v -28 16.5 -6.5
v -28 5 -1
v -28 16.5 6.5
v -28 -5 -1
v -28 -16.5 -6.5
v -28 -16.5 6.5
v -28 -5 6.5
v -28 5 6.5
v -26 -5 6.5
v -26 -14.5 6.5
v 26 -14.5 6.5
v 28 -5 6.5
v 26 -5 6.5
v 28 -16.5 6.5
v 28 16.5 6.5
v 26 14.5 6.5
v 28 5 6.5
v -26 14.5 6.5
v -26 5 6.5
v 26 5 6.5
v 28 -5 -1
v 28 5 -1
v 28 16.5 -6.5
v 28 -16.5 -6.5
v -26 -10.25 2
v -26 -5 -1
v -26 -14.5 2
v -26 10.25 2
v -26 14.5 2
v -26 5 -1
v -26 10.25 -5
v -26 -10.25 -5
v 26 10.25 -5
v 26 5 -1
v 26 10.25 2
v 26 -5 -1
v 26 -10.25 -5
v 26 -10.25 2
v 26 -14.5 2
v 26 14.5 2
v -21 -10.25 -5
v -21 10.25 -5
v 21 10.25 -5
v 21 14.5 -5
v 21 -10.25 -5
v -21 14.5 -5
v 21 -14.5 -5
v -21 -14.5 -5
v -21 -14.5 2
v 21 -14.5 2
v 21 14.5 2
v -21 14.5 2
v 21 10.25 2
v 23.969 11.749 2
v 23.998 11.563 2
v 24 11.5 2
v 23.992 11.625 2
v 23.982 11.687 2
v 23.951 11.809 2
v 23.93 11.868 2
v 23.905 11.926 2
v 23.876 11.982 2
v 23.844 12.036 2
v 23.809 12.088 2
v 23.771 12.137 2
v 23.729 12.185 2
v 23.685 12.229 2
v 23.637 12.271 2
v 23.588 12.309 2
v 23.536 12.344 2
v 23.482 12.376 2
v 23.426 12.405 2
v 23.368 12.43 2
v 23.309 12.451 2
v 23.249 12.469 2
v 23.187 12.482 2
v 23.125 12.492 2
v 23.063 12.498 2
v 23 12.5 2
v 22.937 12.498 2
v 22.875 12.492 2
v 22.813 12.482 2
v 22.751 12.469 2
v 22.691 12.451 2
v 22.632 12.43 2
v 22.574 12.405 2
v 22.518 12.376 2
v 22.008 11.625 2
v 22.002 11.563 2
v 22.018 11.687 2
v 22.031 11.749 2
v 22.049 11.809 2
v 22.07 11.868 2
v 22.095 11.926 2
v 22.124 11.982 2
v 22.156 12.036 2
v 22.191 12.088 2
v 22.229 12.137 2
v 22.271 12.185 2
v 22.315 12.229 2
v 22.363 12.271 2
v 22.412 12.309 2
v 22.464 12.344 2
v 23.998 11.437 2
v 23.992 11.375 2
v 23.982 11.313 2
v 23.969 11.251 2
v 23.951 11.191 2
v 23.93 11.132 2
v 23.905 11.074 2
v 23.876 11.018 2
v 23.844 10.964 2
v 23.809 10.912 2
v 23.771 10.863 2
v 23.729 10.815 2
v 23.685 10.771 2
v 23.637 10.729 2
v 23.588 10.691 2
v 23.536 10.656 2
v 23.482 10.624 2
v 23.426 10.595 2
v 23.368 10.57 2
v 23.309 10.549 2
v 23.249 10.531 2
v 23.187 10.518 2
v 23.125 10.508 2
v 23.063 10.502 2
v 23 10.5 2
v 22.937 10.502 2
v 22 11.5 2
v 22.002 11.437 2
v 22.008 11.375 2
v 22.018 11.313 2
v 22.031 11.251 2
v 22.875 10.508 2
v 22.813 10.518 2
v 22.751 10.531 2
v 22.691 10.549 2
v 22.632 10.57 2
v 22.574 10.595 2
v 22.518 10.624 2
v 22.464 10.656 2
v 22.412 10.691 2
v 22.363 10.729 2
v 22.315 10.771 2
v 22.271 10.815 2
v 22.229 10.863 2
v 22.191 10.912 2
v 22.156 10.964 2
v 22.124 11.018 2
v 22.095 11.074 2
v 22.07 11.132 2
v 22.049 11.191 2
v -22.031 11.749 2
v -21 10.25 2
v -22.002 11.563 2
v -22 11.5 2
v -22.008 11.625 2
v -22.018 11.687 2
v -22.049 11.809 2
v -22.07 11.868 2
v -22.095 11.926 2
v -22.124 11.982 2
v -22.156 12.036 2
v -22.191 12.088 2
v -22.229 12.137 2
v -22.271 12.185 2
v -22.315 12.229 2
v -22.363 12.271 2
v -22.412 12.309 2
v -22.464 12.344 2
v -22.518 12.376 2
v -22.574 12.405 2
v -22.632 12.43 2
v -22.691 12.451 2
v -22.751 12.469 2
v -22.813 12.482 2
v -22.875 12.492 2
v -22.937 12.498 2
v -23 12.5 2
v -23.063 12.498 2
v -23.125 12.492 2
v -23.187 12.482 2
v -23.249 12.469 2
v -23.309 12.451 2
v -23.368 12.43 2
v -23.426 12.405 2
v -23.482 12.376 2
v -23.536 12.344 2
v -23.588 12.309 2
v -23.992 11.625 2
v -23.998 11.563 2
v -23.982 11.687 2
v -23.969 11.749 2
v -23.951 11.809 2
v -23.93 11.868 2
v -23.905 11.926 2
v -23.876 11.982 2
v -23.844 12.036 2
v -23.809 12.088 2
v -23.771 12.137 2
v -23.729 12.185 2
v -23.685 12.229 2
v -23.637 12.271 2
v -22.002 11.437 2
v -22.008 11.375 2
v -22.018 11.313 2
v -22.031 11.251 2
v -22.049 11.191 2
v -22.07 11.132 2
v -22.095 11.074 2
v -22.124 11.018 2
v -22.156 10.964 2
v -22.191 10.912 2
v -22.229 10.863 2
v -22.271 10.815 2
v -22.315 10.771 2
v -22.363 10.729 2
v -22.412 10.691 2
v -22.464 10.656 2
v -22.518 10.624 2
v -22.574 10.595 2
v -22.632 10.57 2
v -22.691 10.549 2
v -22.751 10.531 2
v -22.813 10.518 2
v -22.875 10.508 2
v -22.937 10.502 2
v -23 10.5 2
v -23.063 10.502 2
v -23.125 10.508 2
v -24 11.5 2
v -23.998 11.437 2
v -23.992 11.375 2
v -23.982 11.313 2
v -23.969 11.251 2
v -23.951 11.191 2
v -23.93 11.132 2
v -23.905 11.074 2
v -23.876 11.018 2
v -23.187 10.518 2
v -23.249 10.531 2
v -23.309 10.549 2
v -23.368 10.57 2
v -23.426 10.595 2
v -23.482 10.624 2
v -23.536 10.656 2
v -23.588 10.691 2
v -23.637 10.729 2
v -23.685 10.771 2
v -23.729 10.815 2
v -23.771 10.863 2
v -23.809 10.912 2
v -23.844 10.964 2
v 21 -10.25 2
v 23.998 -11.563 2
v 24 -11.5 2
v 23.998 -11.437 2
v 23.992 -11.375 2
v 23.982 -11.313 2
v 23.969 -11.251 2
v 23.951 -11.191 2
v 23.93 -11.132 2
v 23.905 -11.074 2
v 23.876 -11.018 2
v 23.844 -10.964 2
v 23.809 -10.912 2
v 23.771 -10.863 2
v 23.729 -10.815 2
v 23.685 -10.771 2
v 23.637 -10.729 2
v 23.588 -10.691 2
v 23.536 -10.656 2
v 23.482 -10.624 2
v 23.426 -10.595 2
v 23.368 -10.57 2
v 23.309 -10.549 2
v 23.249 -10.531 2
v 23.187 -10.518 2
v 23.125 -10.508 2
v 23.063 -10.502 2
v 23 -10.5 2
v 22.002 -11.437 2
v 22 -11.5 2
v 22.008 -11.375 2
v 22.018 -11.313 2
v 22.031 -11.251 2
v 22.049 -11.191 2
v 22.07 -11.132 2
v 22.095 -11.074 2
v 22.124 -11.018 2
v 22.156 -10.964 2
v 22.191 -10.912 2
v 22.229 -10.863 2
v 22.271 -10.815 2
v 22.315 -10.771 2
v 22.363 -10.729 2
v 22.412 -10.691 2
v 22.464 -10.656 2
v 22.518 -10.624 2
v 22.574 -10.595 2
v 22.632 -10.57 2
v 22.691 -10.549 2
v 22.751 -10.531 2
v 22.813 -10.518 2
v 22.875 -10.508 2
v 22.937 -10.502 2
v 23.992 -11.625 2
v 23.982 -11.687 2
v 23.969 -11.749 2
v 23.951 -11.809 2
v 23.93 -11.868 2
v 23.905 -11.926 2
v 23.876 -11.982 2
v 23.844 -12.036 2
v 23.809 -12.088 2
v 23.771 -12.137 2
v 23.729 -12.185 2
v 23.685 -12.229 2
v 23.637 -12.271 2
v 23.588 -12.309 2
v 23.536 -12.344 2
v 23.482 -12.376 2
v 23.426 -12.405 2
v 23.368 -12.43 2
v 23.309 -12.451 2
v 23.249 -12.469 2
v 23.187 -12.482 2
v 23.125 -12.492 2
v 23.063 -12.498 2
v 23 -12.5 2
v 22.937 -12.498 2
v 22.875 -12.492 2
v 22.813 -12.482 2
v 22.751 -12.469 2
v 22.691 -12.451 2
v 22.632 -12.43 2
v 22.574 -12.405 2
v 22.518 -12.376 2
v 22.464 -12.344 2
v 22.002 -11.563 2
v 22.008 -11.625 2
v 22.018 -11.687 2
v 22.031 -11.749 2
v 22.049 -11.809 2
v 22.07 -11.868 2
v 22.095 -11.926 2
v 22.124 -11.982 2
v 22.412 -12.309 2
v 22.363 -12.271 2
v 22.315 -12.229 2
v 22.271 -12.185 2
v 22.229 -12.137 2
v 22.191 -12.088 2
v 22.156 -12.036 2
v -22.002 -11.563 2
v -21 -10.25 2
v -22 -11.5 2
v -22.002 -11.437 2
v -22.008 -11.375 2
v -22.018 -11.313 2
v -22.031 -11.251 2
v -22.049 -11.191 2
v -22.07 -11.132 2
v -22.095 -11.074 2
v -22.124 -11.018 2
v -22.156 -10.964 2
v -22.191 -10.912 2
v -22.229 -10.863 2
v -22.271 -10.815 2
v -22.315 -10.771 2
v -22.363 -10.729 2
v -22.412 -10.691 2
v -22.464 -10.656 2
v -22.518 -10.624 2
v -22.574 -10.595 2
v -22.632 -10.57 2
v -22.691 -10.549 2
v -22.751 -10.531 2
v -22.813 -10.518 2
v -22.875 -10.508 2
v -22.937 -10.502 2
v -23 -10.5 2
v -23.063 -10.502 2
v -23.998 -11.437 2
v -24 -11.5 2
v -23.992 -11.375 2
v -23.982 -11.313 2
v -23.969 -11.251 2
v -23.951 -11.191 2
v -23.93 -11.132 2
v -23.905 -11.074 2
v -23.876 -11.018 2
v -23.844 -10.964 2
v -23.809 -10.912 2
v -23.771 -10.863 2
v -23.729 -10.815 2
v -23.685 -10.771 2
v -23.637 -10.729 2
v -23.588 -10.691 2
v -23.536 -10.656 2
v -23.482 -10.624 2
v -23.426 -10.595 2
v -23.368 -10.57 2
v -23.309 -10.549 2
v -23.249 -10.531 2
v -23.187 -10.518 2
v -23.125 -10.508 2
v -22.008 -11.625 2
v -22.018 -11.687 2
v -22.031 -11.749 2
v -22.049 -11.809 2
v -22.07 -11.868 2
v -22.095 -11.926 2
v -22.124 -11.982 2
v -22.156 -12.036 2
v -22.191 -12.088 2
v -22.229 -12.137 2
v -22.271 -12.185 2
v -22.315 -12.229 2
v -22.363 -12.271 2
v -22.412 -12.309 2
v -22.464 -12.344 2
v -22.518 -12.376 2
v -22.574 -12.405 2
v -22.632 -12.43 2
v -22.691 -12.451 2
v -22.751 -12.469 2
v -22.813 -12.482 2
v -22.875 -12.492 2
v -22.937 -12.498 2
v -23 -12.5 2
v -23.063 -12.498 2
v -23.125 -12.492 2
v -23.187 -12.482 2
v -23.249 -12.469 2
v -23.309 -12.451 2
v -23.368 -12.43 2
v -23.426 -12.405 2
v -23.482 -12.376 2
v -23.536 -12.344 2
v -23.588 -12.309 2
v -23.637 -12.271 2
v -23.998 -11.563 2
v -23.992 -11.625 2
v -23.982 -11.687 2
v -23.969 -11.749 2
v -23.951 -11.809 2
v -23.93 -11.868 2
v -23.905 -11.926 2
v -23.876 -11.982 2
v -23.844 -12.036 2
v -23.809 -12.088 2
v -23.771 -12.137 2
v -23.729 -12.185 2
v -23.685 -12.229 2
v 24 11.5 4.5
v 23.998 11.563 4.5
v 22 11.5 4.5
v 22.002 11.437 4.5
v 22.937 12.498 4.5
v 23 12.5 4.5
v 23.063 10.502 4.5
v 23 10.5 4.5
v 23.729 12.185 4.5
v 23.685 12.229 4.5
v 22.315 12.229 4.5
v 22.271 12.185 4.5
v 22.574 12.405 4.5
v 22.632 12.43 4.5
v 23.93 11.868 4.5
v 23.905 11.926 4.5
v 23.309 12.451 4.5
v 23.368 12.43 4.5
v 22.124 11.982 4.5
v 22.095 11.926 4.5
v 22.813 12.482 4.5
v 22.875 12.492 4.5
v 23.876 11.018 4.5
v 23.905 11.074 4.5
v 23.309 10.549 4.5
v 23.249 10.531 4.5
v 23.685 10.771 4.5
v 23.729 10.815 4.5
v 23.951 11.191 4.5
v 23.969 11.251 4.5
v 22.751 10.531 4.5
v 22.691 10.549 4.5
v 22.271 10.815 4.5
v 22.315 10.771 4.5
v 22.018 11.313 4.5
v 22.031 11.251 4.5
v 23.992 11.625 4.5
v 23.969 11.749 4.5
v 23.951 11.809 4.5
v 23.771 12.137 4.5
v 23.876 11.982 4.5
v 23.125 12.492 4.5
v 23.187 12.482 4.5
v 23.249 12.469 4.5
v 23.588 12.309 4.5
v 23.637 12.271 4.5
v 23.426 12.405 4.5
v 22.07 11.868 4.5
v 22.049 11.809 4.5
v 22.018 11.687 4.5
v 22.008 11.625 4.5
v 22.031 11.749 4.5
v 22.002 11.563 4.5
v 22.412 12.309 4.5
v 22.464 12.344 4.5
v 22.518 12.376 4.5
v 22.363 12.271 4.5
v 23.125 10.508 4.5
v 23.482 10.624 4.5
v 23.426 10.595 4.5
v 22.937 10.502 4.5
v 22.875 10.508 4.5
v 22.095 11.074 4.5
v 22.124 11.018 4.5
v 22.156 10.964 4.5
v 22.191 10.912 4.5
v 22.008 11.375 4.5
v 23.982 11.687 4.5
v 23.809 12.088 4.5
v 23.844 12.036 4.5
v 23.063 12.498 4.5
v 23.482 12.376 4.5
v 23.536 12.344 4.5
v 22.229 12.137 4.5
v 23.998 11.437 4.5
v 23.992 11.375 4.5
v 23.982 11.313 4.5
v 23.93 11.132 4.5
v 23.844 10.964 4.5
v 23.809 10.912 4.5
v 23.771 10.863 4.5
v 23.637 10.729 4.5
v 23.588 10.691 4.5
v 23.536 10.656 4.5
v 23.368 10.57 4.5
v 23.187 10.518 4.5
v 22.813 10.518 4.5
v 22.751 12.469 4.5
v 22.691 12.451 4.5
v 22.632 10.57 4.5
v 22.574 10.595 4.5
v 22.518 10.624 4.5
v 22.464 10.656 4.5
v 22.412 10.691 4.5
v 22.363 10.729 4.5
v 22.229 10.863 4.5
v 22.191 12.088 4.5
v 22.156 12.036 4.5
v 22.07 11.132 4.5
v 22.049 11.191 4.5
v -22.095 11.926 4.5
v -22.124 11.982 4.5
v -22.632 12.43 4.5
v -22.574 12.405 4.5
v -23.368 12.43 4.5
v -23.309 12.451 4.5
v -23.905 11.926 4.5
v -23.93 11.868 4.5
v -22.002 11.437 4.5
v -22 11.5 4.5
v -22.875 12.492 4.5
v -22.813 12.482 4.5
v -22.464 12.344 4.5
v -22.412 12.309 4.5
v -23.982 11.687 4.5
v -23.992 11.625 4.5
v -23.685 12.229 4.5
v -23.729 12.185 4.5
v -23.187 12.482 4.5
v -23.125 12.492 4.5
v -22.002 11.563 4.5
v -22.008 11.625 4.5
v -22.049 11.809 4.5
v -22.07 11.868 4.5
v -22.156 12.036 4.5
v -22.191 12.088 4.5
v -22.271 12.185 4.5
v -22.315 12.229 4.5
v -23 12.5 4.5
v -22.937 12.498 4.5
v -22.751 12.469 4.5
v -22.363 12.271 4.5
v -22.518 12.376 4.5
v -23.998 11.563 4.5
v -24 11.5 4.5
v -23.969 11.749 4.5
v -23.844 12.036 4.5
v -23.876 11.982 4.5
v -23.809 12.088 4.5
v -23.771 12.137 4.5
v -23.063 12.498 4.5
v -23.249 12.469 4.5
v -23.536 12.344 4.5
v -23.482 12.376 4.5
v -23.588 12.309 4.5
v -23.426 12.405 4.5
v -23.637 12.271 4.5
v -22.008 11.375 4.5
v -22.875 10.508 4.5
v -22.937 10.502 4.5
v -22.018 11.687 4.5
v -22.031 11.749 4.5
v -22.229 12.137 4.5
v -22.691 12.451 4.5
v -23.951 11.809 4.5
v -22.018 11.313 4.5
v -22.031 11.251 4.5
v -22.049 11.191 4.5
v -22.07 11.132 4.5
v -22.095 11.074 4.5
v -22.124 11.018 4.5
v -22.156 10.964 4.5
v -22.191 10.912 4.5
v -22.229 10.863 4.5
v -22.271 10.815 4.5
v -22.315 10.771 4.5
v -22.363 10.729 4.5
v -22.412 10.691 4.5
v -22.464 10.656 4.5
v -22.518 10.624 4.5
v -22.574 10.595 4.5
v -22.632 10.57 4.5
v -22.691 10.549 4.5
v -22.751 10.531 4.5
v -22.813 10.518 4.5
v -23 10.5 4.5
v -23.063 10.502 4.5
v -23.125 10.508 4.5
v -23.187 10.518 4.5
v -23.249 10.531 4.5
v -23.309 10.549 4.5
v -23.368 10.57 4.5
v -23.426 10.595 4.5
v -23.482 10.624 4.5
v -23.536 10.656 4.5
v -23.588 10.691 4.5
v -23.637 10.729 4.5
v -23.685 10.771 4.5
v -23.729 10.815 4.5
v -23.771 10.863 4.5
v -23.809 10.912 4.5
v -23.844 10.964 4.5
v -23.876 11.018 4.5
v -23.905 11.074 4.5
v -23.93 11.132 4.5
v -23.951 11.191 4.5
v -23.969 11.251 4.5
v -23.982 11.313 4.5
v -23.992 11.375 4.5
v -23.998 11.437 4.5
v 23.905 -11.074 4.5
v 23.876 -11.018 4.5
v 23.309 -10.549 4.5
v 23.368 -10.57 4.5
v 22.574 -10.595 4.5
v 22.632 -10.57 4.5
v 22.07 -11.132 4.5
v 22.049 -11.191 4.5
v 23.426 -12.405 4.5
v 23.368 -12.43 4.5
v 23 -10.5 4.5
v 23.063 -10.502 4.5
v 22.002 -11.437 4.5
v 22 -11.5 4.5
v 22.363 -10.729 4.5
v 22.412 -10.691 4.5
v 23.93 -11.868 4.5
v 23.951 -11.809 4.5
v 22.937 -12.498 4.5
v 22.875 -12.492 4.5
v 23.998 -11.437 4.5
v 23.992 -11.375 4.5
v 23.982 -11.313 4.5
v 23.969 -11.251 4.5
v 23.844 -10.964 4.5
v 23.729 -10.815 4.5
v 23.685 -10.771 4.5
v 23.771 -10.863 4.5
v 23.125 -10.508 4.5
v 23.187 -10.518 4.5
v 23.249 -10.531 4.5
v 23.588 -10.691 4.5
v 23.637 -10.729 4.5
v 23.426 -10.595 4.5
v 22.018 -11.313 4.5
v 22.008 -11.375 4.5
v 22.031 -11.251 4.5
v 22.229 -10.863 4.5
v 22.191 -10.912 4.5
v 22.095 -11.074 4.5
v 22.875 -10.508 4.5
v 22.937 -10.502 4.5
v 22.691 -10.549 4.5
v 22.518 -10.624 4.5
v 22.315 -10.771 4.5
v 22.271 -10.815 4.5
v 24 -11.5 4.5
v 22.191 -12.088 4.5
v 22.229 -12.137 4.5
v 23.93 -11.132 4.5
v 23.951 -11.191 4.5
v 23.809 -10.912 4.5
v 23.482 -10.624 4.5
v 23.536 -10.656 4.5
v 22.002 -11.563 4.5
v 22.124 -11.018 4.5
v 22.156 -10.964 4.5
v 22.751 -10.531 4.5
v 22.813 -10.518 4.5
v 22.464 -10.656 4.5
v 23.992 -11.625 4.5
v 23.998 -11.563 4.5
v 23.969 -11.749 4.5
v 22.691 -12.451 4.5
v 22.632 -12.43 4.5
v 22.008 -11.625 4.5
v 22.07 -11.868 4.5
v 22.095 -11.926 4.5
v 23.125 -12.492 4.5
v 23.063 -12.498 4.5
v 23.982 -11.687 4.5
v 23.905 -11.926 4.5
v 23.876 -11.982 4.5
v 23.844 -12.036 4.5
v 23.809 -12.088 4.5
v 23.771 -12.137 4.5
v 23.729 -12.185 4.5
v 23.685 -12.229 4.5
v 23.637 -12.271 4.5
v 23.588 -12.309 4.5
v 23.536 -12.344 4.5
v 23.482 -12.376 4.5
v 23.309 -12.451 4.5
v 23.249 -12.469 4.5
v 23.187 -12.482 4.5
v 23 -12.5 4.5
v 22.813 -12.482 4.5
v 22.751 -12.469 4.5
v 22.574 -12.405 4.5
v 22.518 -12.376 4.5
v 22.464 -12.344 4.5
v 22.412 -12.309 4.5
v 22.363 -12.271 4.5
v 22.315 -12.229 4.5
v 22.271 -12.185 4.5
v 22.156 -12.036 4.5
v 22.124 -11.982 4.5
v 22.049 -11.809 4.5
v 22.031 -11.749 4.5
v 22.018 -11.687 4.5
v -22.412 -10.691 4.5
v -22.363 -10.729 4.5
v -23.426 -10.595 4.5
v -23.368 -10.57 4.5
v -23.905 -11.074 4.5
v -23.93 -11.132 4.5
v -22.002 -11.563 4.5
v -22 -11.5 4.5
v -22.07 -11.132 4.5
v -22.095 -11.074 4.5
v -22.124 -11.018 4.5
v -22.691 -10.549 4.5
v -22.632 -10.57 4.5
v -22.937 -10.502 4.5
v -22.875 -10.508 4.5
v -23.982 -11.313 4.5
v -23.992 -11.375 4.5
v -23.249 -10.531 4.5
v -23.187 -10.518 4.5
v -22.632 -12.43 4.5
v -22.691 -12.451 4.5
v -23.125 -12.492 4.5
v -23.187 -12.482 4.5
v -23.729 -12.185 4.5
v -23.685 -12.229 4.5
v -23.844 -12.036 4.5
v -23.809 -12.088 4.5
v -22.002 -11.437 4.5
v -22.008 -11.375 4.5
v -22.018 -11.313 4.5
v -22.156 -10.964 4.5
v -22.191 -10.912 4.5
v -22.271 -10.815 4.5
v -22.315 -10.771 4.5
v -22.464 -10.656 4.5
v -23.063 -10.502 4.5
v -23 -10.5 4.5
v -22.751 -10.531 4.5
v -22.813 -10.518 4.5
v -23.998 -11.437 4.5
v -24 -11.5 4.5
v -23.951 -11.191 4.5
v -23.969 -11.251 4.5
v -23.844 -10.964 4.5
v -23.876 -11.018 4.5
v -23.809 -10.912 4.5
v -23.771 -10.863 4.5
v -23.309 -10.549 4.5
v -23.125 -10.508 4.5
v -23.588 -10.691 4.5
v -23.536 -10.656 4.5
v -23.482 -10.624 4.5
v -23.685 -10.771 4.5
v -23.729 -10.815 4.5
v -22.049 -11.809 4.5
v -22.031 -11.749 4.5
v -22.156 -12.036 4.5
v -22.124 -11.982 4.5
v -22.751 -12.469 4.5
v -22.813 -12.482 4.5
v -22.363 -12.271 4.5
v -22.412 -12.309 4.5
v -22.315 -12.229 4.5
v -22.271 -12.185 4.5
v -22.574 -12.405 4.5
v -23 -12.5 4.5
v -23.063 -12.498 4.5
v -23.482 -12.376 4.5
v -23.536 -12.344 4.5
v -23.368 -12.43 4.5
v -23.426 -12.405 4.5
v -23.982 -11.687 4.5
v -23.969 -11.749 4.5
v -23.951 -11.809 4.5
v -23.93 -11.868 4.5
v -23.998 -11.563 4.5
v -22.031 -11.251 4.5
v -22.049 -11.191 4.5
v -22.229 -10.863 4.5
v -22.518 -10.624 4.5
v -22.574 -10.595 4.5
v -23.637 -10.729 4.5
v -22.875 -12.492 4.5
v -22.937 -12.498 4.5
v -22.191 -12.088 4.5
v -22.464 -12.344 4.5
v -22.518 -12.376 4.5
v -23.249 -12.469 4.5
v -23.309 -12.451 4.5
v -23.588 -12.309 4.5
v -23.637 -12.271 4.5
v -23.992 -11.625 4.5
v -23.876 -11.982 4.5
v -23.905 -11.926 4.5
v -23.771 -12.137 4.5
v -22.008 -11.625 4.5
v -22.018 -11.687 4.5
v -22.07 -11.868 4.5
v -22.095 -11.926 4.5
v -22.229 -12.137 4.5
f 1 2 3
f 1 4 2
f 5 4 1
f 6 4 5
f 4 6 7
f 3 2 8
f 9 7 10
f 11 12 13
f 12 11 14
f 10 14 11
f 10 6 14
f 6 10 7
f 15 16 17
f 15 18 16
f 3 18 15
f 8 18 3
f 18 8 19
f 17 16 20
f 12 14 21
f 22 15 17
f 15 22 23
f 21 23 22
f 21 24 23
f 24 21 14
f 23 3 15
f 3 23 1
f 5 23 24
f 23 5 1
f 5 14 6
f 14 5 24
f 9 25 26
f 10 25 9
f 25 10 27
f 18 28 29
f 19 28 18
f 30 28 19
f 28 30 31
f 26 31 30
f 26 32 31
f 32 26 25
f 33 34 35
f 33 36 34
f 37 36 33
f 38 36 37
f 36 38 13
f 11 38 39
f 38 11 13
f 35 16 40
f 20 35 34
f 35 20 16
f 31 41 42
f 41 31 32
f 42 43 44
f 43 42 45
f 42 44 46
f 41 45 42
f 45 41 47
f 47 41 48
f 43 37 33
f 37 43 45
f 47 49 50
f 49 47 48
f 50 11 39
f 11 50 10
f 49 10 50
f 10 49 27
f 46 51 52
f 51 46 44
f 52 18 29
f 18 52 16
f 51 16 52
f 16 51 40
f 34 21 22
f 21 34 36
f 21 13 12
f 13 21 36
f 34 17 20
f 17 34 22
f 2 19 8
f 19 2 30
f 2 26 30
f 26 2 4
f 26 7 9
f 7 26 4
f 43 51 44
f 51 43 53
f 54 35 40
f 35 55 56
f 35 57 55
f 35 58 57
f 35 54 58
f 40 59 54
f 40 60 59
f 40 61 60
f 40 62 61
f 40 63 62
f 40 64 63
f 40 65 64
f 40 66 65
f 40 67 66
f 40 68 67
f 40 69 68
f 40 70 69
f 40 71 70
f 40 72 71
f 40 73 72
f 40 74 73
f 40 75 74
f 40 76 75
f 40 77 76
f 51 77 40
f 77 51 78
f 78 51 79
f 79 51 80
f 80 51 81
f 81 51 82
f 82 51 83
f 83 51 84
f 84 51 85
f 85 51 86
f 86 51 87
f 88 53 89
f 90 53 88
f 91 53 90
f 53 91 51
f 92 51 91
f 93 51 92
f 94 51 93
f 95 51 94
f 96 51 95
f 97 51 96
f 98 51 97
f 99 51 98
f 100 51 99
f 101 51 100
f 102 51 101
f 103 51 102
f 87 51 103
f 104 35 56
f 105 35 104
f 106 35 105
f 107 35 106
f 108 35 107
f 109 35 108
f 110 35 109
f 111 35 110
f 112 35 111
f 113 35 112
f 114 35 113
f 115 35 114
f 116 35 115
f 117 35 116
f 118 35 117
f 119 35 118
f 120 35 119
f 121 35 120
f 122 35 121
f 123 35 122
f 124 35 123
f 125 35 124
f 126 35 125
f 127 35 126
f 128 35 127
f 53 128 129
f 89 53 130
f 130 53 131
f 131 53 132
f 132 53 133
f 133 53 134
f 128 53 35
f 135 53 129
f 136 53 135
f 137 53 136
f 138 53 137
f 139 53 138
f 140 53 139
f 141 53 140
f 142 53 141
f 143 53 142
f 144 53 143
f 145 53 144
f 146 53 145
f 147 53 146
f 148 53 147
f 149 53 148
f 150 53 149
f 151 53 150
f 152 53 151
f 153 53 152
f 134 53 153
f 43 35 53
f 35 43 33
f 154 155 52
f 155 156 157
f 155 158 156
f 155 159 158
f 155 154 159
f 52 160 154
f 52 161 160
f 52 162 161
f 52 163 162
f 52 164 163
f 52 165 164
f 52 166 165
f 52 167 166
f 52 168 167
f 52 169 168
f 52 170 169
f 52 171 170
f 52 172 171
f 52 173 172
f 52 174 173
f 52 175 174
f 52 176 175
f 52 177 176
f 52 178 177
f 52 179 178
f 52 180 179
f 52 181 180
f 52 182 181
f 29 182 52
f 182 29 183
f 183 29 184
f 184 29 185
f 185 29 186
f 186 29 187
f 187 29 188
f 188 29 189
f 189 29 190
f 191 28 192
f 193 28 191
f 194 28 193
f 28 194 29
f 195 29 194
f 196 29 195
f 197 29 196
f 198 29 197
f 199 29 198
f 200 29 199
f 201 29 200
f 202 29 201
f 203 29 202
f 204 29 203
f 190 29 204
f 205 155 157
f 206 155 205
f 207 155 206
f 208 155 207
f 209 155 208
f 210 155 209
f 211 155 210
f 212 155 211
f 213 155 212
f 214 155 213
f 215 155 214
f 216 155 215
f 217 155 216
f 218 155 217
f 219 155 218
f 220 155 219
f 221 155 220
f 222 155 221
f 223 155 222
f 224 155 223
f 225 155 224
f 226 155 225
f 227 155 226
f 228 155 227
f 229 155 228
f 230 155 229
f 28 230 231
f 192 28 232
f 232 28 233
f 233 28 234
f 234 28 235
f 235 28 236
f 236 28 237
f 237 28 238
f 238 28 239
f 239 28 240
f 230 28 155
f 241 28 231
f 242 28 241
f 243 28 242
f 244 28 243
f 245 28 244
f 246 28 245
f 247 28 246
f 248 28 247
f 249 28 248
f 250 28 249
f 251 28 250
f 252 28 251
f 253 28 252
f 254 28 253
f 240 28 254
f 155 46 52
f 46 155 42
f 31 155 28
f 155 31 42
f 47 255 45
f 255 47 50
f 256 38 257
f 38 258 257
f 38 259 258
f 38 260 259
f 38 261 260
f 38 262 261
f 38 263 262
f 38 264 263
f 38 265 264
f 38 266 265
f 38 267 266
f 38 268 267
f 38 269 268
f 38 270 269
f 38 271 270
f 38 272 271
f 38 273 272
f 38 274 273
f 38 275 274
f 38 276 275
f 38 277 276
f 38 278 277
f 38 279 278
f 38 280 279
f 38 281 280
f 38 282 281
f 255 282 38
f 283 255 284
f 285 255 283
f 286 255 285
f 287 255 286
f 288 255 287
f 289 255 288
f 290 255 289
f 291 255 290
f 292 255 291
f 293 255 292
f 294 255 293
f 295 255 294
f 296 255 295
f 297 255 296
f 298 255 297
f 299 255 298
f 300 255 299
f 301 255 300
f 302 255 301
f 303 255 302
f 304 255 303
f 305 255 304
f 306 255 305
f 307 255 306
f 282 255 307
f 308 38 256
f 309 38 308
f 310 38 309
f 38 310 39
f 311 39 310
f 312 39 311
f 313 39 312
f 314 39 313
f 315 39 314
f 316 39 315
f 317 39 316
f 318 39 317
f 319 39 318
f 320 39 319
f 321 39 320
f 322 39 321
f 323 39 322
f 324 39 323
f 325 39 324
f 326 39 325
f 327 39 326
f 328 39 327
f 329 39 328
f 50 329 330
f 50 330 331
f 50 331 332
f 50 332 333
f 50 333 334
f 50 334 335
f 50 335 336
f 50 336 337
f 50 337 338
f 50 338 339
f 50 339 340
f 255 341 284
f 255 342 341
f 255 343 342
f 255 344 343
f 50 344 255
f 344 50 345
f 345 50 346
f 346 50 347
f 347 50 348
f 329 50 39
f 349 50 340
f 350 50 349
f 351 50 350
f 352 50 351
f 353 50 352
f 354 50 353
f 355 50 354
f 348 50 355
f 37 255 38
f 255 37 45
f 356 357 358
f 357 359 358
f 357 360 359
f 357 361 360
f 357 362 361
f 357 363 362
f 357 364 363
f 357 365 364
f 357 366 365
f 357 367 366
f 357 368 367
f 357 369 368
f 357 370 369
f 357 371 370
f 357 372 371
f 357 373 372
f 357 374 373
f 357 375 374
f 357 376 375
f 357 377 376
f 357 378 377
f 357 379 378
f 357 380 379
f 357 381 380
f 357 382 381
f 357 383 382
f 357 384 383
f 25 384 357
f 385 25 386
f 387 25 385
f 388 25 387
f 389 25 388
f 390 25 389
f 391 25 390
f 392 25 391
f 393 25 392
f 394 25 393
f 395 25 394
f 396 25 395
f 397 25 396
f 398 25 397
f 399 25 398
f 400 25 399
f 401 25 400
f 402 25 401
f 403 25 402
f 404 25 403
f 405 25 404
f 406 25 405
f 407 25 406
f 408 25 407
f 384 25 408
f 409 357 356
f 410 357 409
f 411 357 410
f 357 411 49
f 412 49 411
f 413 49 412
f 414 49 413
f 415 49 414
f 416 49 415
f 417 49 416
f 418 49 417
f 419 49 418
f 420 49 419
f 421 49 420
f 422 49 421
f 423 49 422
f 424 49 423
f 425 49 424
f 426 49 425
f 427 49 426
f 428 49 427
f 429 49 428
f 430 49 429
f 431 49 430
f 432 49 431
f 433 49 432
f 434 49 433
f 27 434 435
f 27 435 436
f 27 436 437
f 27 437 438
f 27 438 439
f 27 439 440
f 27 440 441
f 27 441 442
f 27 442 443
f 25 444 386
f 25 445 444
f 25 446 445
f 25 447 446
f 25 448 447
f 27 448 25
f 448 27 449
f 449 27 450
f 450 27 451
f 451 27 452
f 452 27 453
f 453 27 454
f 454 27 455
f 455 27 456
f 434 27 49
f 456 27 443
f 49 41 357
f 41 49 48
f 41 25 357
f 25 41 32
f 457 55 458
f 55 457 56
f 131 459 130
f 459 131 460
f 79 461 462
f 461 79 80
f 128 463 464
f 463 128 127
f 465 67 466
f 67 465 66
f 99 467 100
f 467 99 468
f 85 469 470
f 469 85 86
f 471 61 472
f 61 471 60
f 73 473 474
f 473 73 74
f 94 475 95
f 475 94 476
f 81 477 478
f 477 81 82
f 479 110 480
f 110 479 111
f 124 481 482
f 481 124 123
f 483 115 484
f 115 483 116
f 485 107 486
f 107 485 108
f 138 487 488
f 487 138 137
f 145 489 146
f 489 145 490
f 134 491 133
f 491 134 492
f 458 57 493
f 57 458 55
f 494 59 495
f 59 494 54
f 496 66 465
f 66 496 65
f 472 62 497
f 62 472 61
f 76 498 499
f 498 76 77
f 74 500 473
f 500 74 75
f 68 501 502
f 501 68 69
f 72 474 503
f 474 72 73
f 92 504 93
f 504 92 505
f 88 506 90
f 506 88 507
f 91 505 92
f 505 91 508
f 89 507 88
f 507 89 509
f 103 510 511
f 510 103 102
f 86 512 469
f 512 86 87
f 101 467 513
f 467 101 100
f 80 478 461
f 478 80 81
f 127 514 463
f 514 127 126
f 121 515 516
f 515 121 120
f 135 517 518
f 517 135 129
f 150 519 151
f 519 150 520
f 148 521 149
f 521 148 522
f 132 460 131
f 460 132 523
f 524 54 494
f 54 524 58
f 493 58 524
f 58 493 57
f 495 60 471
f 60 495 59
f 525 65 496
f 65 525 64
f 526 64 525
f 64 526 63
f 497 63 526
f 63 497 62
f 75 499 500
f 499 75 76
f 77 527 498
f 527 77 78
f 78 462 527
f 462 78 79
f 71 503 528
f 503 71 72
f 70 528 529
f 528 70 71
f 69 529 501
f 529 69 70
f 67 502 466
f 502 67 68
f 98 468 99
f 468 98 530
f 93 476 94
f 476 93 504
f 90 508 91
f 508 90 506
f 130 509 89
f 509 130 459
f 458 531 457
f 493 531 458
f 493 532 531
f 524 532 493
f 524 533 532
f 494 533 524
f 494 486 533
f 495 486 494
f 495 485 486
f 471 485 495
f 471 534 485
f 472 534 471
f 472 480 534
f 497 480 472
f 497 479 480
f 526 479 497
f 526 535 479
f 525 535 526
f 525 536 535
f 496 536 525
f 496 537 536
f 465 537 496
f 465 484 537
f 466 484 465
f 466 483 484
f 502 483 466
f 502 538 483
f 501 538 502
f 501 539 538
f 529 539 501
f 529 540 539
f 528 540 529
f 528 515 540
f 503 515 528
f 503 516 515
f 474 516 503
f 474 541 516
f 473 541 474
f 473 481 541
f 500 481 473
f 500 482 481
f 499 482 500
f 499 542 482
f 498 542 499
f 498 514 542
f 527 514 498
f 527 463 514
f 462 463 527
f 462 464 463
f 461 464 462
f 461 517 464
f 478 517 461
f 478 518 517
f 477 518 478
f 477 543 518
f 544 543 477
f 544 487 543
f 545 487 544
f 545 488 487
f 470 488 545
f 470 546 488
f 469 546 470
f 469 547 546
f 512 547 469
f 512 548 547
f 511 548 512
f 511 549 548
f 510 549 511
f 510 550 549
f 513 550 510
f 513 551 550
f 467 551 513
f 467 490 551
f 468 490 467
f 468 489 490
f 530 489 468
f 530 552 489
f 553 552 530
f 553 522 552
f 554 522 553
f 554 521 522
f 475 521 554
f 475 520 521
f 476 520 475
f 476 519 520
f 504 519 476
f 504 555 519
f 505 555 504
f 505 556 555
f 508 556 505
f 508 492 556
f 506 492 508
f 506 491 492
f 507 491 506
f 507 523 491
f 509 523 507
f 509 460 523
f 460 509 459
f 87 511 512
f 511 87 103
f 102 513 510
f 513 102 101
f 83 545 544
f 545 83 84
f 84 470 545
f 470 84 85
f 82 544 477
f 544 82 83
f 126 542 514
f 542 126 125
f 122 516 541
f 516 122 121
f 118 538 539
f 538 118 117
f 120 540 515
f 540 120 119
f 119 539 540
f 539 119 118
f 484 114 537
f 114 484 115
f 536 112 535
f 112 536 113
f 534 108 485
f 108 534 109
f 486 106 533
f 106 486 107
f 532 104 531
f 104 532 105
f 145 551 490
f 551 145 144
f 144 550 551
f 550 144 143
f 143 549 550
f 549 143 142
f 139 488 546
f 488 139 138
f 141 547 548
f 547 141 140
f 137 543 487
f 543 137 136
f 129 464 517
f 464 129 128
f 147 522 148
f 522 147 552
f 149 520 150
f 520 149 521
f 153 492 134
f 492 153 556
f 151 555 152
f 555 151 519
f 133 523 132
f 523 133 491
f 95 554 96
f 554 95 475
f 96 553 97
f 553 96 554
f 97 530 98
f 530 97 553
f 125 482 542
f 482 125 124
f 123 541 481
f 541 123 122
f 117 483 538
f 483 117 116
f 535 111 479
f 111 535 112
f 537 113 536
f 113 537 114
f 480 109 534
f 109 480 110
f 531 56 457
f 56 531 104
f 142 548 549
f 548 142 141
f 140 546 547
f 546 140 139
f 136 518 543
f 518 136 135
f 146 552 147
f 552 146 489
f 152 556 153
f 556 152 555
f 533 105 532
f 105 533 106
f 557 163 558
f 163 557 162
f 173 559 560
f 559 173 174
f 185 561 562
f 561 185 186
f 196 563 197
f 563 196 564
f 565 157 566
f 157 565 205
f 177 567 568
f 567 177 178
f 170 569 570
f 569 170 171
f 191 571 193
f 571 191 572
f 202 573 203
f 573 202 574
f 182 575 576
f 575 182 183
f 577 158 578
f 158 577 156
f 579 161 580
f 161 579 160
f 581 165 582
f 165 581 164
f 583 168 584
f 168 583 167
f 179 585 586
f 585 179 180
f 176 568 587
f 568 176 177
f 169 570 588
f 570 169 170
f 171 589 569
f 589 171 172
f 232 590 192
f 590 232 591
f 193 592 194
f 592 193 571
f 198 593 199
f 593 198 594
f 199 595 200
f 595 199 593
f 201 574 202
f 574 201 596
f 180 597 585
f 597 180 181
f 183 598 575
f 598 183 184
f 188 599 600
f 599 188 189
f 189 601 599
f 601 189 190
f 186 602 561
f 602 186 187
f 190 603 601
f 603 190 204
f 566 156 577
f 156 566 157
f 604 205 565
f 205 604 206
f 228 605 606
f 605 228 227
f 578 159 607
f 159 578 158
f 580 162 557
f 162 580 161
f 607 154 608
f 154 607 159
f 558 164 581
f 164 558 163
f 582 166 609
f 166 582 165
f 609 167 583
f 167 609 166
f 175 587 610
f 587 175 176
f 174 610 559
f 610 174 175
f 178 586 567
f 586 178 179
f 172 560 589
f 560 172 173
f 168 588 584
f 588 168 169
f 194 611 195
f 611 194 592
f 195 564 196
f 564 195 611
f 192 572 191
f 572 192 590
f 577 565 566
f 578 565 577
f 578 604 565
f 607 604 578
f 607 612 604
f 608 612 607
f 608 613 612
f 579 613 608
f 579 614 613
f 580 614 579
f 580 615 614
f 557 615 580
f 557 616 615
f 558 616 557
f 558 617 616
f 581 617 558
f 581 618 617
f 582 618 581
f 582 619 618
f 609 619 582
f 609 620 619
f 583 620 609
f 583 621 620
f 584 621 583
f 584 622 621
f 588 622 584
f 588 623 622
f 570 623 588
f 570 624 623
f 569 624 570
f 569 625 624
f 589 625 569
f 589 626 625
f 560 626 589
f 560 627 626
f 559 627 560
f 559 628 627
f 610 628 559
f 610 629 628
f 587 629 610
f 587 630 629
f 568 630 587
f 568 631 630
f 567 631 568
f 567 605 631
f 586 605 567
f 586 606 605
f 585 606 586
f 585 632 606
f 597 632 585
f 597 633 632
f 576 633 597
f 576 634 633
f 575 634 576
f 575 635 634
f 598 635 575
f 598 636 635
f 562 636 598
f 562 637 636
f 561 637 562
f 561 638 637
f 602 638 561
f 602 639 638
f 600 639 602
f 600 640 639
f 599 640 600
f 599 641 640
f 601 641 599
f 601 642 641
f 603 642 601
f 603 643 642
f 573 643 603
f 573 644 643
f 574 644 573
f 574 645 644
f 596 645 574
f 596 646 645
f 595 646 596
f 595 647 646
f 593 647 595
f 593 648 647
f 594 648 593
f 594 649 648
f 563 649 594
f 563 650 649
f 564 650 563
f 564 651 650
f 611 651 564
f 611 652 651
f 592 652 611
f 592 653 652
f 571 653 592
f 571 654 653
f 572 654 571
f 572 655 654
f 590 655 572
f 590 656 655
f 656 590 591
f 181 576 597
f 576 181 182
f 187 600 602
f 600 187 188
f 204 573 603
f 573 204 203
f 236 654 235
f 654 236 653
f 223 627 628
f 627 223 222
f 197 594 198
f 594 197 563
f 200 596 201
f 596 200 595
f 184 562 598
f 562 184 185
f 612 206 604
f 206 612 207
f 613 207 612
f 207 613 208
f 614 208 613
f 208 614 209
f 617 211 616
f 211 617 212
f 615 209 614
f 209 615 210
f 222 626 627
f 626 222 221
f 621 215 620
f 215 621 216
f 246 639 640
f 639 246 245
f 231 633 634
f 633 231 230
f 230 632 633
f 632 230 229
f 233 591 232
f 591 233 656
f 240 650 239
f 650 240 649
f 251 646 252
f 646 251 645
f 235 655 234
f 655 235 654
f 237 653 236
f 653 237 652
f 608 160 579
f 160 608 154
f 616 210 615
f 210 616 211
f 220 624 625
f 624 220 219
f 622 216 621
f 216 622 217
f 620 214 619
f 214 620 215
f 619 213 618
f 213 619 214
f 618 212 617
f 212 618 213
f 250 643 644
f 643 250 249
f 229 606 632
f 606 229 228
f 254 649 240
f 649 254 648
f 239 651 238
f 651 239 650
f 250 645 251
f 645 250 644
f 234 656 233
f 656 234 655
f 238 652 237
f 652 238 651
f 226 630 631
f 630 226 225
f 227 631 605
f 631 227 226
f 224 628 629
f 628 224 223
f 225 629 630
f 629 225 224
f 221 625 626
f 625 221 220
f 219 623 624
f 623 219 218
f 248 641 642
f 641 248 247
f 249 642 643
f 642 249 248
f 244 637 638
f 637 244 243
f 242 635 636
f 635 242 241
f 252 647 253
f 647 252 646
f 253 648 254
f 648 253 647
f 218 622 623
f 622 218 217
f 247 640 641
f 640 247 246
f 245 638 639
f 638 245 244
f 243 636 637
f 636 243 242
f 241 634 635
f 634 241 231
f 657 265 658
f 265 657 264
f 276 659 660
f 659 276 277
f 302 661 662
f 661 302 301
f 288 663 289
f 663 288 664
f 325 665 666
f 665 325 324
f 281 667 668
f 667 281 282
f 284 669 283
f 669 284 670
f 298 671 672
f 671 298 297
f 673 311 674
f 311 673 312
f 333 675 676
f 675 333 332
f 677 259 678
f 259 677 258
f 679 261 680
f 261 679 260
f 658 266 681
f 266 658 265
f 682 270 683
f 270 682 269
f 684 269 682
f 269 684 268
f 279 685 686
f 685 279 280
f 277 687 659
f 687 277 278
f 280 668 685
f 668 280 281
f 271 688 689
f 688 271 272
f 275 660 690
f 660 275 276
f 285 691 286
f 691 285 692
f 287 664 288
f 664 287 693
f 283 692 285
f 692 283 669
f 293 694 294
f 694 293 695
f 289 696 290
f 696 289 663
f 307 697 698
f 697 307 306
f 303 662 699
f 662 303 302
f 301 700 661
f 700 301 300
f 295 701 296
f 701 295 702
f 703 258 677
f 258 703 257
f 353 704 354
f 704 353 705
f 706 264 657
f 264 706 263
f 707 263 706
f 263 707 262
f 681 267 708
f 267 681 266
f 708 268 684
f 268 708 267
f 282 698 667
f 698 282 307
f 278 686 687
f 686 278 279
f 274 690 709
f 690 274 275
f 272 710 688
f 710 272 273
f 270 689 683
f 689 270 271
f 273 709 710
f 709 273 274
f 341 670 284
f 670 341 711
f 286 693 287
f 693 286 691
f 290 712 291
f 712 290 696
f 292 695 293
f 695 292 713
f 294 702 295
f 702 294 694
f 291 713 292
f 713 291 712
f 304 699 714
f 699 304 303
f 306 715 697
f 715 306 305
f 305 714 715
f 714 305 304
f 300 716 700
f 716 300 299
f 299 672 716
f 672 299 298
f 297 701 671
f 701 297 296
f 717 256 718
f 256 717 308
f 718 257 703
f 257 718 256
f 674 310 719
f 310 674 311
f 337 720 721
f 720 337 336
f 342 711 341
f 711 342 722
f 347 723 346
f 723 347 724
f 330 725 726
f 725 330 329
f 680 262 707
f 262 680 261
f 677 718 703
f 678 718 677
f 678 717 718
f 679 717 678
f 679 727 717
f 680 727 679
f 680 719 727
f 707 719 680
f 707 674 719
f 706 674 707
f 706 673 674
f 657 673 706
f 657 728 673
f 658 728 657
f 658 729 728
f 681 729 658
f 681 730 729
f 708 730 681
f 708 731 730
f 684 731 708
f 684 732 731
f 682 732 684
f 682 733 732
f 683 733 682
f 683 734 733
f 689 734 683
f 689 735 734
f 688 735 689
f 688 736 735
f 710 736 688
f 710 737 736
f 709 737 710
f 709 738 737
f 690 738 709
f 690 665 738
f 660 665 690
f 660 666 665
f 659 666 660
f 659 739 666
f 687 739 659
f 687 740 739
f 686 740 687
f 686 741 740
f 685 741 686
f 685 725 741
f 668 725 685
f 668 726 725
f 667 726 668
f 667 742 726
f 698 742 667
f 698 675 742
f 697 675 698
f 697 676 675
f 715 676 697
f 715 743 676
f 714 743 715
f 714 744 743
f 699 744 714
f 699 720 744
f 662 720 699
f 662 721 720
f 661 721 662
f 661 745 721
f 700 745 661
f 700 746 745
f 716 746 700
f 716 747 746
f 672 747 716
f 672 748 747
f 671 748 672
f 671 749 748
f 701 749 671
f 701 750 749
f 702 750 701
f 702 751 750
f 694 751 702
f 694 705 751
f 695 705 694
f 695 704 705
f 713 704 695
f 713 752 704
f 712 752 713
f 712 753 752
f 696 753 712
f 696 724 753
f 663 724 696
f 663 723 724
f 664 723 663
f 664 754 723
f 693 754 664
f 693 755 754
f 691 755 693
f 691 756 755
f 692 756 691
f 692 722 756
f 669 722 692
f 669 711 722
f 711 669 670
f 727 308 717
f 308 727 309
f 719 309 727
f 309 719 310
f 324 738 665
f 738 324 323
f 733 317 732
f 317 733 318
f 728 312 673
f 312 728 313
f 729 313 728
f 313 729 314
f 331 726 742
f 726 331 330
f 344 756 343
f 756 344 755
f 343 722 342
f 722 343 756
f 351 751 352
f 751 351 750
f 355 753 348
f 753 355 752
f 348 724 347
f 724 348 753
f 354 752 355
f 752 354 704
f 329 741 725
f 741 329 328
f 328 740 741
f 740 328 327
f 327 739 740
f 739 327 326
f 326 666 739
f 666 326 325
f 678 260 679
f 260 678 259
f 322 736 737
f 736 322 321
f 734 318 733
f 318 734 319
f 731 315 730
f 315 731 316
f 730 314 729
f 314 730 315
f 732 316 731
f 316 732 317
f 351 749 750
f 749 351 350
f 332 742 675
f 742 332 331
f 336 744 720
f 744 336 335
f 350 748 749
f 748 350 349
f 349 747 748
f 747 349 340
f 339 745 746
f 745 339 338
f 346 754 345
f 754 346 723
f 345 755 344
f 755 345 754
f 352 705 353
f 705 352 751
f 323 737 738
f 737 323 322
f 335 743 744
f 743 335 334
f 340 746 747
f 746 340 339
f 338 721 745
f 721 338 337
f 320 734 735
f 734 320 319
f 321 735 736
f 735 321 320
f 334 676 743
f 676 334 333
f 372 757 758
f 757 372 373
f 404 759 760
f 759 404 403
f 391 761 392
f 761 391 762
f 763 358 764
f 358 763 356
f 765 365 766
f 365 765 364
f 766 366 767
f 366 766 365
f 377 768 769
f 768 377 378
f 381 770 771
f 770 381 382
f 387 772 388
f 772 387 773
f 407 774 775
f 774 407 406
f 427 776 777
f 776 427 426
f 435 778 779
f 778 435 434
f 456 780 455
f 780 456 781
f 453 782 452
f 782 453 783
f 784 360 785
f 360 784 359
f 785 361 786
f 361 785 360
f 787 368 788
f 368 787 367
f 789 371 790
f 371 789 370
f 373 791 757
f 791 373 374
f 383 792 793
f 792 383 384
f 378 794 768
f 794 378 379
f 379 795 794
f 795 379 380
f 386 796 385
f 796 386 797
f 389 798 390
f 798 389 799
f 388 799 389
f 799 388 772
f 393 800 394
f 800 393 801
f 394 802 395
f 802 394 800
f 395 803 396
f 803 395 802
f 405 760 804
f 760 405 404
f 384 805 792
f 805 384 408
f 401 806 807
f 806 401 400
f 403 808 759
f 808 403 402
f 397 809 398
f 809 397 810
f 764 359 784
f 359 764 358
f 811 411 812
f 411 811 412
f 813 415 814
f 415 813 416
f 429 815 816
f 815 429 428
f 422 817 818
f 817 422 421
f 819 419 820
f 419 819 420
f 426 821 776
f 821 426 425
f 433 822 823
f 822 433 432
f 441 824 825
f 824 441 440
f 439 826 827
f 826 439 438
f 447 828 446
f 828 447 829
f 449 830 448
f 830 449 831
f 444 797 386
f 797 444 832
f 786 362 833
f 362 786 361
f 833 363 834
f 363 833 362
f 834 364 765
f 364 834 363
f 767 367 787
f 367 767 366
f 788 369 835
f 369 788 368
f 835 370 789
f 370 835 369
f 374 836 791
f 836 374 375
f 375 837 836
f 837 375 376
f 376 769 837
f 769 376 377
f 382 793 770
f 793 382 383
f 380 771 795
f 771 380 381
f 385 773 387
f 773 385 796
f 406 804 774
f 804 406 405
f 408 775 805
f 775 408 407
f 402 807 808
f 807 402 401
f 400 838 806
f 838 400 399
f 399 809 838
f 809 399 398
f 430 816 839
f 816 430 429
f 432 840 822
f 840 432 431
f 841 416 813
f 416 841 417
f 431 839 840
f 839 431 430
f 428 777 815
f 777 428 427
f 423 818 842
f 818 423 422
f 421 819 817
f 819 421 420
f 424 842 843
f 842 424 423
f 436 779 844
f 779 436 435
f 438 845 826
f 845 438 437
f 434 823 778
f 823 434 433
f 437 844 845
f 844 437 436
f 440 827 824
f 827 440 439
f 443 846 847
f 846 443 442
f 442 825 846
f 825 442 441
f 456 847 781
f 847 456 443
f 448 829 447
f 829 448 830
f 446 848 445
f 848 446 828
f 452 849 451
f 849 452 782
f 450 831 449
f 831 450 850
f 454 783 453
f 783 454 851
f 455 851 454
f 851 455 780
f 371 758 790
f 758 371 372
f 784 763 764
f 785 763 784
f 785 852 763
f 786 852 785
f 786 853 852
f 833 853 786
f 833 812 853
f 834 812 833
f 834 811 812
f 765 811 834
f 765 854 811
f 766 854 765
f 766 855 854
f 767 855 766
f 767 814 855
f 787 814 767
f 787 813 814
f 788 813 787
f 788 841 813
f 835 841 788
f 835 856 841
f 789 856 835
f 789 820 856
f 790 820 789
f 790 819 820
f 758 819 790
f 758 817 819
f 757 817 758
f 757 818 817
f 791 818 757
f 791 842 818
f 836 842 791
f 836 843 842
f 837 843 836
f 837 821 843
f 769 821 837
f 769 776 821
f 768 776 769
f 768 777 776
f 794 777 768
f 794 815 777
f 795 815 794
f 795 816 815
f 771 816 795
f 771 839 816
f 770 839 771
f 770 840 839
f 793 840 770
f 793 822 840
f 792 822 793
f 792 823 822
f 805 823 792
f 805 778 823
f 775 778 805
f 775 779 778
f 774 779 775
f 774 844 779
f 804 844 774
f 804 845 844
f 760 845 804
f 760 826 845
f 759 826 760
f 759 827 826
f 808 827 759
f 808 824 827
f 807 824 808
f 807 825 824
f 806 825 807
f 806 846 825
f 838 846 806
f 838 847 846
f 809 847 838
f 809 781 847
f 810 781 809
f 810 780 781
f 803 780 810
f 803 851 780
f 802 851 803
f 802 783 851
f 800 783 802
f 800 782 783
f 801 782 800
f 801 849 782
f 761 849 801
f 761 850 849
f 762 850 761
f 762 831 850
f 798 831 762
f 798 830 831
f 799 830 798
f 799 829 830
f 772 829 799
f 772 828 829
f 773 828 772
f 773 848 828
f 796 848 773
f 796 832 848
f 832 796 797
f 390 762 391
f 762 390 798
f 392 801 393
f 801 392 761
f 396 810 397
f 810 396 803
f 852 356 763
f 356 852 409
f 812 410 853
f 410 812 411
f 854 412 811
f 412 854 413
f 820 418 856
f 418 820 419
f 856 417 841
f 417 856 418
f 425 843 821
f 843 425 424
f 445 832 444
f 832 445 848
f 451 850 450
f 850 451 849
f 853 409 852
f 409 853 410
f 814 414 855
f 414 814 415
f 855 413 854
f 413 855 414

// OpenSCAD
difference() {
    cube([56, 33, 13], center=true); 
    translate([0, 0, 2]) cube([52, 29, 14], center=true);
    translate([26, 0, 3]) cube([5, 10, 8], center=true);
    translate([-26, 0, 3]) cube([5, 10, 8], center=true);
}

translate([23.5, 12.5, -2]) cube([5, 4.5, 8], true);
translate([-23.5, 12.5, -2]) cube([5, 4.5, 8], true);
translate([23.5, -12.5, -2]) cube([5, 4.5, 8], true);
translate([-23.5, -12.5, -2]) cube([5, 4.5, 8], true);

translate([23, 11.5, 3]) cylinder(h = 3, r = 1, $fn = 100, center=true);
translate([-23, 11.5, 3]) cylinder(h = 3, r = 1, $fn = 100, center=true);
translate([23, -11.5, 3]) cylinder(h = 3, r = 1, $fn = 100, center=true);
translate([-23, -11.5, 3]) cylinder(h = 3, r = 1, $fn = 100, center=true);
